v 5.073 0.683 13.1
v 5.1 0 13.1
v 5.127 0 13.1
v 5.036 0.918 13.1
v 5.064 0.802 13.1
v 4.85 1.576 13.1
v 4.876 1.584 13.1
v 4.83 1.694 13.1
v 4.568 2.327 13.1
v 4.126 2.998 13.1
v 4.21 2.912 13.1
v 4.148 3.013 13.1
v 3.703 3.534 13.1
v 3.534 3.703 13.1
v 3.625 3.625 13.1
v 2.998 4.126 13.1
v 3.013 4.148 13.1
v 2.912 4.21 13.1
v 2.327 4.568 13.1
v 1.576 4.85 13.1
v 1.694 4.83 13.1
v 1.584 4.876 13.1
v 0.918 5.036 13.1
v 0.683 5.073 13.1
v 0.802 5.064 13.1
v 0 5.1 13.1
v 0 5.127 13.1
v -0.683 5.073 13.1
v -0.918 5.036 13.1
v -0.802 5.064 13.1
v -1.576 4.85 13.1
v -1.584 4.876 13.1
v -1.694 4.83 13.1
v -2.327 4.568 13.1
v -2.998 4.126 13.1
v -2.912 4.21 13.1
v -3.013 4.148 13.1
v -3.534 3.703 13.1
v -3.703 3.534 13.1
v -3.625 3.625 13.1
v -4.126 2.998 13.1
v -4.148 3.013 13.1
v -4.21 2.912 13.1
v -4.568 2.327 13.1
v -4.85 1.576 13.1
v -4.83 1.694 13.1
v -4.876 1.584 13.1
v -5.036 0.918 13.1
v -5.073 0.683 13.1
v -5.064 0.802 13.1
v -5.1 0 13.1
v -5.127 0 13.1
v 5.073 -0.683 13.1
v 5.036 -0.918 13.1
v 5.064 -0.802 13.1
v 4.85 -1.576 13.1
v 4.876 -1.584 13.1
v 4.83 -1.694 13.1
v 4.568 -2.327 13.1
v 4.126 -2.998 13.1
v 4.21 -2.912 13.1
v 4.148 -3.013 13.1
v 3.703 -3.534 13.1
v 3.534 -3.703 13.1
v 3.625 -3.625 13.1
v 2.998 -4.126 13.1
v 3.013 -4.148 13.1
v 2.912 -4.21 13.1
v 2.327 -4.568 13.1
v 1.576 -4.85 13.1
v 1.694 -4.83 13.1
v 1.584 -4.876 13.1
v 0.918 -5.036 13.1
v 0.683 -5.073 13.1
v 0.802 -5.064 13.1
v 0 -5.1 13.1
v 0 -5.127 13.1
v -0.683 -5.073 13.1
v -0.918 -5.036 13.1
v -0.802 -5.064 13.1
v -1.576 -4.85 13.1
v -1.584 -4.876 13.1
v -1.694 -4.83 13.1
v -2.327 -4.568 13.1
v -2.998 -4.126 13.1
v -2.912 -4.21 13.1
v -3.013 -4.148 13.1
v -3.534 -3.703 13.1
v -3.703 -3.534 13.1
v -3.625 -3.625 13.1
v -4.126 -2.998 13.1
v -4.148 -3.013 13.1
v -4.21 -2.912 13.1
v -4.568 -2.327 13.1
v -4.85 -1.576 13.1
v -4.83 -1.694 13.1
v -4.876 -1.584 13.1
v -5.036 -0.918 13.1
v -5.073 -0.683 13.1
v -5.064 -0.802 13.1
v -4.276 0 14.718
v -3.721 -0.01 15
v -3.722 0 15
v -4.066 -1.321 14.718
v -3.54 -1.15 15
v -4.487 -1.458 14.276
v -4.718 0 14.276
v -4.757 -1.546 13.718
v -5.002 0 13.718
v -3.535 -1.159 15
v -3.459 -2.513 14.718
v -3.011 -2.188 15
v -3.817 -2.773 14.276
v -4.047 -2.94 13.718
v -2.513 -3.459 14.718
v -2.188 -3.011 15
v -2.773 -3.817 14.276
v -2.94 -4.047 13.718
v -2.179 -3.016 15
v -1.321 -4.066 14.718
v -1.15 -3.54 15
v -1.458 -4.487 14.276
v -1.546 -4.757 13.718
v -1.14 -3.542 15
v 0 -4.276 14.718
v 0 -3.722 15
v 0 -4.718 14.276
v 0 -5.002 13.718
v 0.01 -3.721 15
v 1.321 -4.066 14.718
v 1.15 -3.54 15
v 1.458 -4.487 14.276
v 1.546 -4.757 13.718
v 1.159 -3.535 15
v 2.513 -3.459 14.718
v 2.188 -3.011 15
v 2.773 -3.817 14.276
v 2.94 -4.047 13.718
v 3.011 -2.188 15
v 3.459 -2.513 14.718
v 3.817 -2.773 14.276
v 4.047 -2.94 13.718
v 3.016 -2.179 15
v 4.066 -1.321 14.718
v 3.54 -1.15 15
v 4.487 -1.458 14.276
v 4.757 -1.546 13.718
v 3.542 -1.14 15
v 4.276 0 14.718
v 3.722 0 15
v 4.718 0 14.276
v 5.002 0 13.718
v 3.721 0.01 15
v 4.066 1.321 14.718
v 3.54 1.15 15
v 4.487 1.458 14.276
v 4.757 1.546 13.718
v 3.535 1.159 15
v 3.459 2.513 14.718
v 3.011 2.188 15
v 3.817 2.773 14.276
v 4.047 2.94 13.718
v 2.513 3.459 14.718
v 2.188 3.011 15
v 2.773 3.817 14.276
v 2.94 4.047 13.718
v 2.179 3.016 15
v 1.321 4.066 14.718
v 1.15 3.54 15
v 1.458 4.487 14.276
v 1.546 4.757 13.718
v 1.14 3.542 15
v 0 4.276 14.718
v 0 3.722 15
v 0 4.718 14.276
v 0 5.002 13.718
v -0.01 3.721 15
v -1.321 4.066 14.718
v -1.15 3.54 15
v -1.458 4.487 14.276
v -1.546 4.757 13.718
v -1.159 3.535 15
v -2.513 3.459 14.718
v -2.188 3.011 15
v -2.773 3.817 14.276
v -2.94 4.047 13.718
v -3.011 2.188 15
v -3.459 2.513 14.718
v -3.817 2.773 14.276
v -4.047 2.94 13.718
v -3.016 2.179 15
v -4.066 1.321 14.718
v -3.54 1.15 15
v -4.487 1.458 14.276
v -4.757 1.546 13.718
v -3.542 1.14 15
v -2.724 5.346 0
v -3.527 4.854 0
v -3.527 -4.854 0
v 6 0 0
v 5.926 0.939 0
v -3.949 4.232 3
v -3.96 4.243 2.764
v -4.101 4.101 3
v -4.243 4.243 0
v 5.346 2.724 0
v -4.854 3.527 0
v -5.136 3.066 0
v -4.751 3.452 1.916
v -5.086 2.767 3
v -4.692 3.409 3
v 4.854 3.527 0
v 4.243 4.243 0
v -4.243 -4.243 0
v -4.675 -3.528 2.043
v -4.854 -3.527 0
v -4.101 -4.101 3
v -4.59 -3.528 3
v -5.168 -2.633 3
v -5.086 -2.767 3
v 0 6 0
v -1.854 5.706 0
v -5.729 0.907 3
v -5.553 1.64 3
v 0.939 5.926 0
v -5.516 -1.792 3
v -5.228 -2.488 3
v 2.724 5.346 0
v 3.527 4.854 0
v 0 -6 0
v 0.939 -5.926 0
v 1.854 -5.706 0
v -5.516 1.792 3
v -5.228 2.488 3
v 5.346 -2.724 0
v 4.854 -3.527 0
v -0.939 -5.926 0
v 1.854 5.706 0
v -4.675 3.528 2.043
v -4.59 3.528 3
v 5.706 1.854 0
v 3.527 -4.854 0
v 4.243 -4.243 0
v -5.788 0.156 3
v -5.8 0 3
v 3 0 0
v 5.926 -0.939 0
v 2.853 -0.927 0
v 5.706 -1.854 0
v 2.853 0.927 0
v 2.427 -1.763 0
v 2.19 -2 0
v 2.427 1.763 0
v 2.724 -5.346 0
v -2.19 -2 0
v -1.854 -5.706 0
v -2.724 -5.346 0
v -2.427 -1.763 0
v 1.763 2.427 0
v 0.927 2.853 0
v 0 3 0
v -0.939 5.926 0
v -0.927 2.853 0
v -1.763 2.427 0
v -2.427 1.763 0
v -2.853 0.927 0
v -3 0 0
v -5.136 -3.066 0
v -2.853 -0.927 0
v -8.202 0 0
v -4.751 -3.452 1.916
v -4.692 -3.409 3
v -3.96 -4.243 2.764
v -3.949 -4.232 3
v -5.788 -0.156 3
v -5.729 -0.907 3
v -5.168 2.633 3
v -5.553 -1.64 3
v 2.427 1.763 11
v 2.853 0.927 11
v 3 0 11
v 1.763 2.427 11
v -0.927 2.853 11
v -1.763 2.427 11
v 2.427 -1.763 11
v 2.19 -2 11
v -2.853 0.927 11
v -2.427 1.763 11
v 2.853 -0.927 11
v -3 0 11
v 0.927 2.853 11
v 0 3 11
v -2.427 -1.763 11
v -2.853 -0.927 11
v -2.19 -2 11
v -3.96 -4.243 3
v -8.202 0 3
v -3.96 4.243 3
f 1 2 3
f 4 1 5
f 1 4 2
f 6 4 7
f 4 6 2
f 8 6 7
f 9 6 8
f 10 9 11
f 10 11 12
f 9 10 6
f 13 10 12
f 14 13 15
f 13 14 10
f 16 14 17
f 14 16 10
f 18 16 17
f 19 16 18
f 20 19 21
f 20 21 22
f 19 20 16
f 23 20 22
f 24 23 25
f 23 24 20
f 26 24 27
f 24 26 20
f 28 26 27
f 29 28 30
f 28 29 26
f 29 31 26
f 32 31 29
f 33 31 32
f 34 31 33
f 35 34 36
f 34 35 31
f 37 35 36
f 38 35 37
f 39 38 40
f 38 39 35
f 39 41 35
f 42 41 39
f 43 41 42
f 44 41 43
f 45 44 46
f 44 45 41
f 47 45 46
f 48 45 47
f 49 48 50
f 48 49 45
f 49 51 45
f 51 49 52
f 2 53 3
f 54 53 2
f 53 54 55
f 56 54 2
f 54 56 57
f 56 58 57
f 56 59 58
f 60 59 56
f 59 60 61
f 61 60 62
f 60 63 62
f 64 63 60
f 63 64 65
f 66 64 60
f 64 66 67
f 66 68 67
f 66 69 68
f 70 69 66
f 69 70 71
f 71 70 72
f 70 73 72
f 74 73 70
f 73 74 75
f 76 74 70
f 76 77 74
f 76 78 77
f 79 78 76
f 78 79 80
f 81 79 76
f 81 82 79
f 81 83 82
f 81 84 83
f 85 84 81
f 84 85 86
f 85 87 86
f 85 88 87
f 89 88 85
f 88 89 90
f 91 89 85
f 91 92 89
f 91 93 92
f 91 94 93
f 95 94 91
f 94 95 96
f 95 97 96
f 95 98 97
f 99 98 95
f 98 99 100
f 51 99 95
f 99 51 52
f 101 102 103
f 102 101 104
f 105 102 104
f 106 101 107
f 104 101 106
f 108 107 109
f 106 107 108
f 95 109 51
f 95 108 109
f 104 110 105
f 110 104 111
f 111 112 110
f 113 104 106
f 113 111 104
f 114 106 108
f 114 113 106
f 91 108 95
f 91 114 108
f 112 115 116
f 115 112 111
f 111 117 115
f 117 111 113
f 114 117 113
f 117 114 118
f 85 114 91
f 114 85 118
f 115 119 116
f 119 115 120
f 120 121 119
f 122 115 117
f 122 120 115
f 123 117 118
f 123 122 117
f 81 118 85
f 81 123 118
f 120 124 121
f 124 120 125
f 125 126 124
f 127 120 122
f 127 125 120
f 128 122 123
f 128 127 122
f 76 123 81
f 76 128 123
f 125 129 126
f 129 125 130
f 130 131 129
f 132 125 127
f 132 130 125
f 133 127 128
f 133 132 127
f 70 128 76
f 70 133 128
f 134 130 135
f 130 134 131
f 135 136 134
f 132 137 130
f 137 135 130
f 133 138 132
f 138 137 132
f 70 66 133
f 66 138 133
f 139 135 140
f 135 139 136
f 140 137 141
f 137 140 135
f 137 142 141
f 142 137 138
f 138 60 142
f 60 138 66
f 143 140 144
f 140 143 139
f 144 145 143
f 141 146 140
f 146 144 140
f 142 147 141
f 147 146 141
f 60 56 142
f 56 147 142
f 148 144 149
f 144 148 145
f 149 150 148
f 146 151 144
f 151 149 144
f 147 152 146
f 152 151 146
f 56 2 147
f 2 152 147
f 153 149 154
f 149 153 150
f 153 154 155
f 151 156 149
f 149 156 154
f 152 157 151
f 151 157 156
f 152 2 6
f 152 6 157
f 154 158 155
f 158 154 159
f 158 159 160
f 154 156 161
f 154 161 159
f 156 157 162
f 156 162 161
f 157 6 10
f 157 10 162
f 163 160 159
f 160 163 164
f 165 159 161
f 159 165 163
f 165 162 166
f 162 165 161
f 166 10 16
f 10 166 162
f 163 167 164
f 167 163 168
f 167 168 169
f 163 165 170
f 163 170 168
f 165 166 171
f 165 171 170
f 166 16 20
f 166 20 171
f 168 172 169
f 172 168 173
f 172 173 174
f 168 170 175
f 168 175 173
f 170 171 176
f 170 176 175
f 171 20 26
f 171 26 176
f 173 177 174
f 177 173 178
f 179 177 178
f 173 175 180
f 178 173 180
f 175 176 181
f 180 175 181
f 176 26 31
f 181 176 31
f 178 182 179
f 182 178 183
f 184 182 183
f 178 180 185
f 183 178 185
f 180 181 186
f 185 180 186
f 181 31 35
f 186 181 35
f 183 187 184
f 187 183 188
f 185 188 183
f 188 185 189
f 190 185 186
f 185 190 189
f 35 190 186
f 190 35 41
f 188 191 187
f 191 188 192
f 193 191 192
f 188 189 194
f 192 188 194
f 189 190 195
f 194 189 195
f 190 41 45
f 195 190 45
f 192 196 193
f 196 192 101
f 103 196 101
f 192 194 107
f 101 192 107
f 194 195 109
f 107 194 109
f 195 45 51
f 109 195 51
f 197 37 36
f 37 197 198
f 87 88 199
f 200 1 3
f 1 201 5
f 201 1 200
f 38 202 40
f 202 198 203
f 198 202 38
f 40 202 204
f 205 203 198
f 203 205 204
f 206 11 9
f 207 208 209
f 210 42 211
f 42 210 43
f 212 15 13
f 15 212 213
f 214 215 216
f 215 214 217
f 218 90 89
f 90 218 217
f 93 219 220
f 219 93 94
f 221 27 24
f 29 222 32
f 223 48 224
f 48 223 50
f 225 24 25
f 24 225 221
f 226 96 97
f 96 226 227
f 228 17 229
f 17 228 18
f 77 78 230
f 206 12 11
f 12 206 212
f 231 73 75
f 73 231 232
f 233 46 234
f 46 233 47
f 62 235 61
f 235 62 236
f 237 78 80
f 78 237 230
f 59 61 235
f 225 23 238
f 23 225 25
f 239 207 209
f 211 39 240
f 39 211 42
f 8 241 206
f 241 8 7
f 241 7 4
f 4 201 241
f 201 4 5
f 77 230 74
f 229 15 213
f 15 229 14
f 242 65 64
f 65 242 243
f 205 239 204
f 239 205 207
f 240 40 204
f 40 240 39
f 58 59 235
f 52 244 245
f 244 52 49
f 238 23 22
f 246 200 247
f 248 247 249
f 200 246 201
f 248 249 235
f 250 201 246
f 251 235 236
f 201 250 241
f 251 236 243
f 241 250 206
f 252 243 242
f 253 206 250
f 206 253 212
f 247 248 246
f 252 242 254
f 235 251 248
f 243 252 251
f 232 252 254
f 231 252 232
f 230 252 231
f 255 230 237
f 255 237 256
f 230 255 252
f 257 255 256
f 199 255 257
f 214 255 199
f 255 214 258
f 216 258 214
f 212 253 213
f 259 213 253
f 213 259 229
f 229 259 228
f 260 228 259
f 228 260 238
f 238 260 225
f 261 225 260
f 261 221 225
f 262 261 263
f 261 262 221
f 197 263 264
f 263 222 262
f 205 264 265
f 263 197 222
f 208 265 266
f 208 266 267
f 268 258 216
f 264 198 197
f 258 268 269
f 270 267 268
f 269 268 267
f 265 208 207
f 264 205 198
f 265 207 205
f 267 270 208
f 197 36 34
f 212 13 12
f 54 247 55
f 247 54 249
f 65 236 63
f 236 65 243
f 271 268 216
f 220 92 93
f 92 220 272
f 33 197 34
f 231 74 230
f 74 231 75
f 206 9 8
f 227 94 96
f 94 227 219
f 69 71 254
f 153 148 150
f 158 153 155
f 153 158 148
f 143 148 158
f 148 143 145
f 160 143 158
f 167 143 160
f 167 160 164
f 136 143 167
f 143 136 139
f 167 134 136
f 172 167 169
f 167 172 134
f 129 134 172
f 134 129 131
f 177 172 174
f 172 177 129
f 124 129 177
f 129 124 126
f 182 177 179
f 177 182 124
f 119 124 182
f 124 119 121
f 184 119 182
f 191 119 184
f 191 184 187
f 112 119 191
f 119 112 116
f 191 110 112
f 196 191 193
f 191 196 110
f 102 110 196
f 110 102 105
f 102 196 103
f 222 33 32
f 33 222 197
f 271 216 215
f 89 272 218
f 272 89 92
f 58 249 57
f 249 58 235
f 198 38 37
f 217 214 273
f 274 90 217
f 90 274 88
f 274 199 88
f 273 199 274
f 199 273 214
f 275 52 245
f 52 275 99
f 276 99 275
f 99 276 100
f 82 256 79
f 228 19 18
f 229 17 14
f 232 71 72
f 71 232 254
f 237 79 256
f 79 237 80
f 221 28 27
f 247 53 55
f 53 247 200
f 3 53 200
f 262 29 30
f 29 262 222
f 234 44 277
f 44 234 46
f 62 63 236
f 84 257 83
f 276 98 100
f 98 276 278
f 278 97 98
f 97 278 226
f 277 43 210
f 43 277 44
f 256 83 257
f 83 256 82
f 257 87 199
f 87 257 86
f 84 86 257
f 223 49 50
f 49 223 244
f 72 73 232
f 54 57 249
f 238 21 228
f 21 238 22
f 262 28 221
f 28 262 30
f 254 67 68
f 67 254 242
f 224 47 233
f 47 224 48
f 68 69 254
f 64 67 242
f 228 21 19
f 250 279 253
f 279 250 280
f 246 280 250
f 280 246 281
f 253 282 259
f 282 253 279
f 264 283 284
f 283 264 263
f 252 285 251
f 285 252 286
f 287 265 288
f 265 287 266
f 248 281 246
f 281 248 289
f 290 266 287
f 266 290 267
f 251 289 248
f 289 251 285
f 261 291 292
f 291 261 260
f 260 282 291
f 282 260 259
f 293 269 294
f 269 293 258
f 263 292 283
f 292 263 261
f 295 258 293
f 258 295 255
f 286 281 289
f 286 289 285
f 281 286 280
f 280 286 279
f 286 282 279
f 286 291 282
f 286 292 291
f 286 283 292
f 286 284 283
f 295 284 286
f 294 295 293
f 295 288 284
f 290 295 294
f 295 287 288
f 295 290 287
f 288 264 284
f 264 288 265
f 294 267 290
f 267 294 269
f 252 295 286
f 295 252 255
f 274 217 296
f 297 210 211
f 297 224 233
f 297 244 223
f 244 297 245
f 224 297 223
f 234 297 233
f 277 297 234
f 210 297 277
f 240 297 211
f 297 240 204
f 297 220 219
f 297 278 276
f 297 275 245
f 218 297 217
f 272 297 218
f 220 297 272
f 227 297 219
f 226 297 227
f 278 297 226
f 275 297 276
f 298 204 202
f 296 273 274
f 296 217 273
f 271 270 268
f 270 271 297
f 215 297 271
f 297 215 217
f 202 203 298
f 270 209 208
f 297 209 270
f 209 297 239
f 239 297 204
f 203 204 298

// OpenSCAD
/*

Parametric Potentiometer Knob Generator
version 1.1
2012 Steve Cooley
http://sc-fa.com
http://beatseqr.com
http://hapticsynapses.com

parametric potentiometer knob generator by steve cooley is licensed under a Creative Commons Attribution-NonCommercial-ShareAlike 3.0 Unported License. Based on a work at sc-fa.com. Permissions beyond the scope of this license may be available at http://sc-fa.com/blog/contact.

view terms of the license here:
http://creativecommons.org/licenses/by-nc-sa/3.0/


version history
---------------
1.1 2012-04-12 fixed the arrow indicator code to be more robust and easier to adjust parameters for.
1.0 2012-03-?? initial release.


*/


//
//
// Physical attributes, basic
//
//

knob_radius_top = 5;
knob_radius_bottom = 6;
knob_height = 15;
knob_smoothness = 40;

shaft_radius = 3.0;
shaft_height = 12;
shaft_smoothness = 20;

shaft_is_flatted = true;
flat_size_adjustment = 0.5;
// you won't need to mess with this. less than 5 makes it disappear. you can, however,
// set the adjustment to be a negative decimal if you need a flat but not as big as the default.
// go positive if you need a bigger flat
flat_size = 5 + flat_size_adjustment;

// some potentiometers need to have their knobs affixed with a set screw.
set_screw = false;
set_screw_radius = 1.5;
set_screw_depth = 9;
set_screw_height = 4;
quality_of_set_screw = 20;

//
//
// Decorations
//
//

//
// top edge smoothing
// thanks to http://www.iheartrobotics.com/ for the articles!
//

smoothing = true;
smoothing_radius = 2;				// tweak on this one, how much smoothing to apply
smooth = 20;						// tweak on this one, Number of facets of rounding cylinder

ct = -0.1; 							// circle translate? not sure.
circle_radius = knob_radius_top;  	// just match the top edge radius
circle_height = 1; 					// actually.. I don't know what this does.
pad = 0.2;							// Padding to maintain manifold


//
// directional indicators
//

// this is a corner edge of a cube sticking out of the cylinder at the bottom
// you can use it instead of the arrow shaped cutout in the top if you like. Or both.

pointy_external_indicator = true;
pointy_external_indicator_height = 3;
pointy_external_indicator_pokey_outey_ness = 1.0; //
pokey_outey_value = pointy_external_indicator_pokey_outey_ness - 1 - pad;
pokey_outey = [pokey_outey_value, pokey_outey_value,0];

// there's an arrow shaped hole you can have. There aren't a lot of controls for this.
// please feel free to improve on this script here.

arrow_indicator = false;
arrow_indicator_scale = 0.4;
arrow_indicator_translate = [0,1,16];
arrow_scale_head = 2;
arrow_scale_shaft = 1.5;

//
// indentations
//

// for spherical indentations, set the quantity, quality, size, and adjust the placement
indentations_sphere = false;
sphere_number_of_indentations = 12;
sphere_quality_of_indentations = 4;
size_of_sphere_indentations = 4;
// the first number in this set moves the spheres in or out. smaller is closer to the middle
// the second number in this set moves the spheres left or right
// the third number in this set moves the speheres up or down
translation_of_sphere_indentations = [10,0,15];
// in case you are using an odd number of indentations, you way want to adjust the starting angle
// so that they align to the front or set screw locations.
sphere_starting_rotation = 90;

// for cylinder indentations, set quantity, quality, radius, height, and placement
indentations_cylinder = false;
cylinder_number_of_indentations = 10;
cylinder_quality_of_indentations = 50;
radius_of_cylinder_indentations_top = 3;
radius_of_cylinder_indentations_bottom = 5;
height_of_cylinder_indentations = 12;
translation_of_cylinder_indentations = [0,8,-8];
cylinder_starting_rotation = -33.3;

// these are some setup variables... you probably won't need to mess with them.
negative_knob_radius = knob_radius_bottom*-1;


// this is the main module. It calls the submodules.
make_the_knob();

module make_the_knob()
{
	difference()
		{
		difference()
			{

			difference()
				{
				difference()
					{

					union()
						{

						difference()
							{
							// main cylinder
							cylinder(r1=knob_radius_bottom,r2=knob_radius_top,h=knob_height, $fn=knob_smoothness);

							smoothing();

							}

						external_direction_indicator();
						}

					shaft_hole();
					}

				set_screw_hole();
				}

			arrow_indicator();
			indentations();
		}
	}

}

module smoothing() {

// smoothing the top
				if(smoothing == true)
					{
						translate([0,0,knob_height])
						rotate([180,0,0])
						difference() {
							rotate_extrude(convexity=10,  $fn = smooth)
							translate([circle_radius-ct-smoothing_radius+pad,ct-pad,0])
							square(smoothing_radius+pad,smoothing_radius+pad);

							rotate_extrude(convexity=10,  $fn = smooth)
							translate([circle_radius-ct-smoothing_radius,ct+smoothing_radius,0])
							circle(r=smoothing_radius,$fn=smooth);
							}
					}
}

module external_direction_indicator() {

				if(pointy_external_indicator == true)
						{


						// outer pointy indicator
						rotate([0,0,135])
						translate(pokey_outey)
						// cube size of 8 minimum to point out
						cube(size=[knob_radius_bottom,knob_radius_bottom,pointy_external_indicator_height],center=false);
						}

}

module shaft_hole() {
				// shaft hole
				difference()
					{

					// round shaft hole
					translate([ 0, 0, -1 ])
					cylinder(r=shaft_radius,h=shaft_height, $fn=shaft_smoothness);

					if(shaft_is_flatted == true)
						{
						// D shaft shape for shaft cutout
						rotate( [0,0,90])
						translate([-7.5,-5,0])
						cube(size=[flat_size,10,13],center=false);
						}
					}
}


module set_screw_hole() {

			if(set_screw == true)
				{
				// set screw hole
				rotate ([90,0,0])
				translate([ 0, set_screw_height, 1 ])
				cylinder(r=set_screw_radius,h=set_screw_depth, $fn=quality_of_set_screw);
				}
}

module arrow_indicator() {
		if(arrow_indicator == true)
			{
			translate(arrow_indicator_translate)
			// begin arrow top cutout
			// translate([(knob_radius/2),knob_height,knob_height])
			rotate([90,0,45])
			scale([arrow_indicator_scale*.3,arrow_indicator_scale*.3,arrow_indicator_scale*.3])
			union()
				{
				rotate([90,45,0])
				scale([arrow_scale_head,arrow_scale_head,1])
				cylinder(r=8, h=10, $fn=3, center=true);
				rotate([90,45,0])
				translate([-10,0,0])
				scale([arrow_scale_shaft,arrow_scale_shaft,1])
				cube(size=[15,10,10],center=true);
				}
			}
}

module indentations() {

if(indentations_sphere == true)
			{
			for (z = [0:sphere_number_of_indentations])
				{
				rotate([0,0,sphere_starting_rotation+((360/sphere_number_of_indentations)*z)])
				translate(translation_of_sphere_indentations)
				sphere(size_of_sphere_indentations, $fn=sphere_quality_of_indentations);
				}
			}
if(indentations_cylinder == true)
			{
			for (z = [0:cylinder_number_of_indentations])
				{
				rotate([0,0,cylinder_starting_rotation+((360/cylinder_number_of_indentations)*z)])

				translate([negative_knob_radius,0,knob_height])
				translate(translation_of_cylinder_indentations)
				cylinder(r1=radius_of_cylinder_indentations_bottom, r2=radius_of_cylinder_indentations_top, h=height_of_cylinder_indentations, center=true, $fn=cylinder_quality_of_indentations);
				}
			}
		}
